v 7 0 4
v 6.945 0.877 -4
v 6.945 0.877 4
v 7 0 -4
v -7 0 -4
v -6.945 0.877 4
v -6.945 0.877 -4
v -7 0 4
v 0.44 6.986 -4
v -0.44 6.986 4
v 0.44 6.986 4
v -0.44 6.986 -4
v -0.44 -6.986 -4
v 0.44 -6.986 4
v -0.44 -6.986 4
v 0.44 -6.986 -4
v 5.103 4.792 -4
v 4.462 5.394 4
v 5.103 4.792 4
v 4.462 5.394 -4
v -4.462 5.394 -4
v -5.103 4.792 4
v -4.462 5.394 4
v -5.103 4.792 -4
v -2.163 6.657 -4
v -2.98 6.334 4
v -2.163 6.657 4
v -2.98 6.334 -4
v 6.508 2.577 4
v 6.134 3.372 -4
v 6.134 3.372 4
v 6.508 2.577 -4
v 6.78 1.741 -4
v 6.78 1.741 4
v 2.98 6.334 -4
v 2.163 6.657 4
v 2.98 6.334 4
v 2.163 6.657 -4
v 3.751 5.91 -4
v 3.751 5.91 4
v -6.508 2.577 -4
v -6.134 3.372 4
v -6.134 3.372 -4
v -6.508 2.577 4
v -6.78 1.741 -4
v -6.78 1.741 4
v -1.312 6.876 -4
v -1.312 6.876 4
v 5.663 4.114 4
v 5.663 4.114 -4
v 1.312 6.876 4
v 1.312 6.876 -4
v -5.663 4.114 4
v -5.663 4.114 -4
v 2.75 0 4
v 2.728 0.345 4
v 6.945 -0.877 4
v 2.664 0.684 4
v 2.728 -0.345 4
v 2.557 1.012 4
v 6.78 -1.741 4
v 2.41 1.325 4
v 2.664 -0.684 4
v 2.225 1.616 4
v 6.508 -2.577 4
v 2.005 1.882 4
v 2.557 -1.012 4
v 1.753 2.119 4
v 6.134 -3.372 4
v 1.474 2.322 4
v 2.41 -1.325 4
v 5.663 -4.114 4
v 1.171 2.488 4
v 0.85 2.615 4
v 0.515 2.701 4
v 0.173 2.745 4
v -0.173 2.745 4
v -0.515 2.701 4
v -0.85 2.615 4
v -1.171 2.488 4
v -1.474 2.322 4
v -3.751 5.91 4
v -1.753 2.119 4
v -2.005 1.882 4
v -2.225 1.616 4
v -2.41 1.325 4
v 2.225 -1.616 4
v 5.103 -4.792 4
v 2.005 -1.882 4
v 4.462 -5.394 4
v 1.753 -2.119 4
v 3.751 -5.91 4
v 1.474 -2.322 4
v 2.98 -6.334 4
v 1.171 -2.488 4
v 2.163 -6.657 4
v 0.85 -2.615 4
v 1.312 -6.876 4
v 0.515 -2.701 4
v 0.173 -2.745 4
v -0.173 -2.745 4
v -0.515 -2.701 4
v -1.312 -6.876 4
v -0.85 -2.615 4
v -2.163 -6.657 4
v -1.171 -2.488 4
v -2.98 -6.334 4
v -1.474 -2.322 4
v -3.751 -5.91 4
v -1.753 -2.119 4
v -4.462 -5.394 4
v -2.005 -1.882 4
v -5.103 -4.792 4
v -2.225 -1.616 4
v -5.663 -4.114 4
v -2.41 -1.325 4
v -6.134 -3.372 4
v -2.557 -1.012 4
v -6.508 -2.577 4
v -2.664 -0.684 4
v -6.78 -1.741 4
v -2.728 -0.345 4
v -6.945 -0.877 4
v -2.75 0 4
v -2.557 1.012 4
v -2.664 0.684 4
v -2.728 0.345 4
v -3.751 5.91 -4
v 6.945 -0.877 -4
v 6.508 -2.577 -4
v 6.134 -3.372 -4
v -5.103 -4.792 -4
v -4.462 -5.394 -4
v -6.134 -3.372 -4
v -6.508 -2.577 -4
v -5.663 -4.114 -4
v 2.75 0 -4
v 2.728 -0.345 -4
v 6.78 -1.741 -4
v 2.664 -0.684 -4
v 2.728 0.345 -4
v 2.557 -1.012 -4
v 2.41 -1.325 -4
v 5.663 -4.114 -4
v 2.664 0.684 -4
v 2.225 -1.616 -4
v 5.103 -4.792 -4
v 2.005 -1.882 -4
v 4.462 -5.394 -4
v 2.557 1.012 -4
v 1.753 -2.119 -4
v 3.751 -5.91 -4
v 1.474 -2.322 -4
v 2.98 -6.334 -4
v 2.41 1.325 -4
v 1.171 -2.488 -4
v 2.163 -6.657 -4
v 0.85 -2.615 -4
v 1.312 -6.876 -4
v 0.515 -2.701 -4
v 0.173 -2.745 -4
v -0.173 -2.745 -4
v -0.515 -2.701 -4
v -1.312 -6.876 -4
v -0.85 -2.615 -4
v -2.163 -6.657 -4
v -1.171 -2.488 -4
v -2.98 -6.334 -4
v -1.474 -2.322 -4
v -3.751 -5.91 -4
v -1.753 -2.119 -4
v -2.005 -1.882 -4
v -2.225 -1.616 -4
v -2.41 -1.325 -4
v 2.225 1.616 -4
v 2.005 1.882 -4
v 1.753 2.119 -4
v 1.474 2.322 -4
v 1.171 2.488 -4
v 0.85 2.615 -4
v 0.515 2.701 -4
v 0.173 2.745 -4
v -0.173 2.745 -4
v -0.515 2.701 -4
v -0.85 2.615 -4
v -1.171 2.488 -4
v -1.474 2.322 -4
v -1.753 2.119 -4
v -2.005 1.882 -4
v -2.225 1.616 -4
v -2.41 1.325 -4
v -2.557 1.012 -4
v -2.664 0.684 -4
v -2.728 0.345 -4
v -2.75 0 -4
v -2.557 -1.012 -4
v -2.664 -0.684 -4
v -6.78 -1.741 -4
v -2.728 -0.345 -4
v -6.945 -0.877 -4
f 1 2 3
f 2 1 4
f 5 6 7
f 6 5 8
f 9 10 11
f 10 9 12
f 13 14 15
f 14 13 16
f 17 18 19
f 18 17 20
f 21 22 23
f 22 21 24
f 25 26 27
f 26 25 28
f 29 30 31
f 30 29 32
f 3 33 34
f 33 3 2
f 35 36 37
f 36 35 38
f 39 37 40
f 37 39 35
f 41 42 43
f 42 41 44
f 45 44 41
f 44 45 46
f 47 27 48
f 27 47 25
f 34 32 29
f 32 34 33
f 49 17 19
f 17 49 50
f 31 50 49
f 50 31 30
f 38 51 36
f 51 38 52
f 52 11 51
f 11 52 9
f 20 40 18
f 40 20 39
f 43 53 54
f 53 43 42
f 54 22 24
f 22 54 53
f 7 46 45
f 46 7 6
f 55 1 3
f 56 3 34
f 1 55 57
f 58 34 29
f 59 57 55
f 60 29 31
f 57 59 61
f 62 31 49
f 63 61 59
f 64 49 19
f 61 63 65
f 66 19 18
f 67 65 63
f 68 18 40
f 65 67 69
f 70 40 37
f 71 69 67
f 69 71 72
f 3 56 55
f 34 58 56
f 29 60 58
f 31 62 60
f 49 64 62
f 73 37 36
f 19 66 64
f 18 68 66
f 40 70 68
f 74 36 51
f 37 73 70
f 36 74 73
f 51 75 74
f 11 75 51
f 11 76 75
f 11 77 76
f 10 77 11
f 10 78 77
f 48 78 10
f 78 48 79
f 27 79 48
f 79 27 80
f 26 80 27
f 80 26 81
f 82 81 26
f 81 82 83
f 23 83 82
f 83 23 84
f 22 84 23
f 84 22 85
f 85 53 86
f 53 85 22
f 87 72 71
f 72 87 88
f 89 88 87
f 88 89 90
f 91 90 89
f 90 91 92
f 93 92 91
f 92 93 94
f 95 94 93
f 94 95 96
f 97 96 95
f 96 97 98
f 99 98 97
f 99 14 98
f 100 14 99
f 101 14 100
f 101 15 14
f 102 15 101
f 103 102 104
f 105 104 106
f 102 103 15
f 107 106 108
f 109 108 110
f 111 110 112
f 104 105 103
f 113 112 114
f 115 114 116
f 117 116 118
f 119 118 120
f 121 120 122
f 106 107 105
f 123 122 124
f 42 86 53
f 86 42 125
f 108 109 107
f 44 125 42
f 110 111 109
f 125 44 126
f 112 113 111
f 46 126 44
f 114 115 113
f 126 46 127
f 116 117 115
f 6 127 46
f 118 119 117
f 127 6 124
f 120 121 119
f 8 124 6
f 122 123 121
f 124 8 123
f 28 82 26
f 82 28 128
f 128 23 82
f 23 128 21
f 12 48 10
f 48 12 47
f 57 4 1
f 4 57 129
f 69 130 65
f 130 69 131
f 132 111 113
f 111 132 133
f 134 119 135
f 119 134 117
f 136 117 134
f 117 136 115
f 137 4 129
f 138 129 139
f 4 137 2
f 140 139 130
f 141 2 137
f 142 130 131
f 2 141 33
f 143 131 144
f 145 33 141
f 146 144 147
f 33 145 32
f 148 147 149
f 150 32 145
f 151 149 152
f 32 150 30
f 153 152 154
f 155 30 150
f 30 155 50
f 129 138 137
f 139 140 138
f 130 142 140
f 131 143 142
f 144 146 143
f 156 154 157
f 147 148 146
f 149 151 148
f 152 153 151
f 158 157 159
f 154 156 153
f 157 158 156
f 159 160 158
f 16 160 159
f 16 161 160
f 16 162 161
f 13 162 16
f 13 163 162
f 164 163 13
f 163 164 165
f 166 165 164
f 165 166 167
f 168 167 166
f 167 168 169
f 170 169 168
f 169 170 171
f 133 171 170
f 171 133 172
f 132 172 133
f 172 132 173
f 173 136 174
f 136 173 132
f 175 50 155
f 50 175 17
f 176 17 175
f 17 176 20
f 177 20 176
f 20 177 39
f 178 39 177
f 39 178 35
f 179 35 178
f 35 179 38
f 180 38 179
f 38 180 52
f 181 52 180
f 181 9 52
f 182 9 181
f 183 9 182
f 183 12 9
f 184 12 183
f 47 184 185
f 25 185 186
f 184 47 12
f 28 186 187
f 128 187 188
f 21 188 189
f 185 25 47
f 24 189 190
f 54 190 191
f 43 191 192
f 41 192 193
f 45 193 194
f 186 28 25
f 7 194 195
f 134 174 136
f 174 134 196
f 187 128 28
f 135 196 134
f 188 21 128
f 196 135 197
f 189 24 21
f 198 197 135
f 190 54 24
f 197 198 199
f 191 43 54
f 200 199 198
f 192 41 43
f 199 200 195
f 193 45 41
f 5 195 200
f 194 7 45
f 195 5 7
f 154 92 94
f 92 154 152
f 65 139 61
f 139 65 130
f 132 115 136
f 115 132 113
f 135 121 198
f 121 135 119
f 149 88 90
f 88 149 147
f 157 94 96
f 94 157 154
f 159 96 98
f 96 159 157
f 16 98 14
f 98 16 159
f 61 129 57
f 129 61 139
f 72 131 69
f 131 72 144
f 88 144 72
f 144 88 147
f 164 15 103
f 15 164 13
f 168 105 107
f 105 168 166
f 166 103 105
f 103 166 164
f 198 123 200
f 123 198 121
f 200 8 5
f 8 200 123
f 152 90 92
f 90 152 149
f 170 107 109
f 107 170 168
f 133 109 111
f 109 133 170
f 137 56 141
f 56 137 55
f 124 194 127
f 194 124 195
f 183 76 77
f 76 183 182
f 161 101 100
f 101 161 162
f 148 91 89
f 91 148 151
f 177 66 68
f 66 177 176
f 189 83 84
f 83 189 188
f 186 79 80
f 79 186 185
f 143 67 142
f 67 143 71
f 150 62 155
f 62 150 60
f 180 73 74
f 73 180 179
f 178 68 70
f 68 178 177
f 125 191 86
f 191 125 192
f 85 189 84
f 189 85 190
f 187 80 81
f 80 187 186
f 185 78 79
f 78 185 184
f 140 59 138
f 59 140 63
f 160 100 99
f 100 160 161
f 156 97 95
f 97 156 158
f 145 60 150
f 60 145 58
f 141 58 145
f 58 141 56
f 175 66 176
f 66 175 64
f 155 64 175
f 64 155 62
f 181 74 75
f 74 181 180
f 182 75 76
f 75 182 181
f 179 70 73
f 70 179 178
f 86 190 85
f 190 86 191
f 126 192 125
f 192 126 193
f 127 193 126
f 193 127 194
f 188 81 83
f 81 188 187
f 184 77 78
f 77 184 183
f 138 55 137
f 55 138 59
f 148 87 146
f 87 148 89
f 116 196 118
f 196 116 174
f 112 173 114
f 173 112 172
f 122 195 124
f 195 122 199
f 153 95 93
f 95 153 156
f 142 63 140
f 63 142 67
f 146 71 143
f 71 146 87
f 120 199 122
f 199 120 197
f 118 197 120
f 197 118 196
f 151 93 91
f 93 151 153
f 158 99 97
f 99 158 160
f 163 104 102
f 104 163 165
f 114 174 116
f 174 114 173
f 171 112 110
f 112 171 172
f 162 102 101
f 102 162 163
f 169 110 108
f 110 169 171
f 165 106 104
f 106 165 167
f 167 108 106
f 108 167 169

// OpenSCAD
$fn = 50;


difference() {
	union() {
		translate(v = [0, 0, -4.0000000000]) {
			cylinder(h = 8, r = 7.0000000000);
		}
	}
	union() {
		translate(v = [0, 0, -100.0000000000]) {
			cylinder(h = 200, r = 2.7500000000);
		}
	}
}
